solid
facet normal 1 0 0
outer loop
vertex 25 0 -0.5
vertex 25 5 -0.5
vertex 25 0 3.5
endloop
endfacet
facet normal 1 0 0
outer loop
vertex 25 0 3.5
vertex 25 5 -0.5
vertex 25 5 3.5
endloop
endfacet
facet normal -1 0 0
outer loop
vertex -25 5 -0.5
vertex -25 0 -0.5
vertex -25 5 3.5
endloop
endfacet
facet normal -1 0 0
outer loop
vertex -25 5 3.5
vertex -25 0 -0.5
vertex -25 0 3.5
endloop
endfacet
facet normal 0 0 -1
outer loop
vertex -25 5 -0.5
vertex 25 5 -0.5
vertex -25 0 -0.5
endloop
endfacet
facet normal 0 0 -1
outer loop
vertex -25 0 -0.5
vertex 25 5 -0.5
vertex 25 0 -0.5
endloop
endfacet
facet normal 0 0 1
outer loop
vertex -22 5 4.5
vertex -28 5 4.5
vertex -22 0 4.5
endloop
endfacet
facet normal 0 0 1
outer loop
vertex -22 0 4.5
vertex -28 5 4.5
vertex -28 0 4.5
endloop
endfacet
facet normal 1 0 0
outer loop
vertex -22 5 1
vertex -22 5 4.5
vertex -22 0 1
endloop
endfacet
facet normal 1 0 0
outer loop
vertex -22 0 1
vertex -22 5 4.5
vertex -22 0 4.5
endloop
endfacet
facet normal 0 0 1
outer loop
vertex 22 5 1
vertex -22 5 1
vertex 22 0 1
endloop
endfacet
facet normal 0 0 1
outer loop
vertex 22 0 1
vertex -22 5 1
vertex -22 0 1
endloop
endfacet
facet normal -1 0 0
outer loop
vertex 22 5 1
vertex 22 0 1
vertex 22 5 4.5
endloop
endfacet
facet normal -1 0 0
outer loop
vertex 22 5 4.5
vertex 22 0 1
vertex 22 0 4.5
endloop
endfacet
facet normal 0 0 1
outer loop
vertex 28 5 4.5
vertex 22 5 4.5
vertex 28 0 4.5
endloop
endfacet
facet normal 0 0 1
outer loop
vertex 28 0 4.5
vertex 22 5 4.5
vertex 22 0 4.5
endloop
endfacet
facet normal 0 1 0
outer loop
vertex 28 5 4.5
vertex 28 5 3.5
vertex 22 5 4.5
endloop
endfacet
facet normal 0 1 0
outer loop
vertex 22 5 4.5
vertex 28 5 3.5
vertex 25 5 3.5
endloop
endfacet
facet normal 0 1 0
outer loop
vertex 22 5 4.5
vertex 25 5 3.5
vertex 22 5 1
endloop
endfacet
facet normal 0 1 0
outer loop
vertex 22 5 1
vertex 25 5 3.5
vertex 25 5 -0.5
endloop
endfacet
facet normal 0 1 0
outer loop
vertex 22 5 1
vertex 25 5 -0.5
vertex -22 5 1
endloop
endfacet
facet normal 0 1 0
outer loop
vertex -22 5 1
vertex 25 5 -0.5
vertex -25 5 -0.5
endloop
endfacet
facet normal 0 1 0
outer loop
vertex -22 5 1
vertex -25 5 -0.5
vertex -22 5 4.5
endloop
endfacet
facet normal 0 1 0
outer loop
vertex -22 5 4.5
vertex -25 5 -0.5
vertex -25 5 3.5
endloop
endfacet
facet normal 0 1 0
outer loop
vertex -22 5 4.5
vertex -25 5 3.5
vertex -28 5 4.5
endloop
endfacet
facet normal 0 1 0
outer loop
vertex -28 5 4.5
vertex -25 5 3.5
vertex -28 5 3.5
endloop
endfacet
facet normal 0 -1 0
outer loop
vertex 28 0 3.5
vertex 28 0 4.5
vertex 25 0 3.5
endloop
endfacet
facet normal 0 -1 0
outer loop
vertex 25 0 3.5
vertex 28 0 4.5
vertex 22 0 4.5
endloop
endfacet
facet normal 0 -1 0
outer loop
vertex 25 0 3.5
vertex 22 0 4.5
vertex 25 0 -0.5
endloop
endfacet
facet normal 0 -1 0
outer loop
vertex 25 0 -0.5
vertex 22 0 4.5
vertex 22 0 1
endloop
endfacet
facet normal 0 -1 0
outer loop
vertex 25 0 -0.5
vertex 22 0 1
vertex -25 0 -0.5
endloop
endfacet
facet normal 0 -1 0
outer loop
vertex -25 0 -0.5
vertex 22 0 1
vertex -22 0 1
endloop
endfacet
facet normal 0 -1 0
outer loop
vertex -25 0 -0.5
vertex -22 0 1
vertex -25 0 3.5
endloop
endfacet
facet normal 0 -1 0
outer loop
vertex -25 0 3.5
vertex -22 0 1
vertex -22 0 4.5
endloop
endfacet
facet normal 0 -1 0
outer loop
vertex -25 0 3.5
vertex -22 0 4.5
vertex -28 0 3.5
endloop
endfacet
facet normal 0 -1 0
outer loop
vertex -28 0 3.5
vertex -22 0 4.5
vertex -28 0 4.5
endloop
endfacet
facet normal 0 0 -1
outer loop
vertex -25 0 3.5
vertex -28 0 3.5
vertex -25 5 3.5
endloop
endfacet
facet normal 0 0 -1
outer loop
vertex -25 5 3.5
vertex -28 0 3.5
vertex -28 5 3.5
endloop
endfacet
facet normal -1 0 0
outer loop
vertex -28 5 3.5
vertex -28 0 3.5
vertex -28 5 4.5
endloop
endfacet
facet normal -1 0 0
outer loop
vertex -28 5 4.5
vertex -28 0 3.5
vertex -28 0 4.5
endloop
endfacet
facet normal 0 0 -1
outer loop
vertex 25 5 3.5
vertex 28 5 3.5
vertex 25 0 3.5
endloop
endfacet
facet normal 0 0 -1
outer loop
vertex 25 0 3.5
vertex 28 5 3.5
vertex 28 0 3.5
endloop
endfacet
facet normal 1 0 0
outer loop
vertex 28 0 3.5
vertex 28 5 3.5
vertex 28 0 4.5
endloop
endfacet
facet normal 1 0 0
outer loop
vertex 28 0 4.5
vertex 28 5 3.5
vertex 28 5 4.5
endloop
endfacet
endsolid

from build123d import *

# Parameters (mm, degrees)
BOSS_EXTRUDE1_DEPTH = 5
SKETCH2_W           = 6
SKETCH2_H           = 5
BOSS_EXTRUDE2_DEPTH = 1


with BuildPart() as part:
    # Sketch1 → Boss-Extrude1 (new body)
    with BuildSketch(Plane(origin=(0, 0, 0), x_dir=(1, 0, 0), z_dir=(0, 1, 0))):
        Polygon((-22, -1), (22, -1), (22, -4.5), (25, -4.5), (25, -0.5), (25, 0.5), (-25, 0.5), (-25, -0.5), (-25, -4.5), (-22, -4.5), align=None)
    extrude(amount=BOSS_EXTRUDE1_DEPTH)

    # Sketch2 → Boss-Extrude2 (add)
    with BuildSketch(Plane.XY.offset(4.5)):
        with Locations((-25, 2.5)):
            Rectangle(SKETCH2_W, SKETCH2_H)
    boss_extrude2 = extrude(amount=-BOSS_EXTRUDE2_DEPTH)

    # Mirror1: Boss-Extrude2 across plane
    add(boss_extrude2.mirror(Plane(origin=(0, 0, 0), x_dir=(0, 0, 1), z_dir=(1, 0, 0))))


solid = part.part
